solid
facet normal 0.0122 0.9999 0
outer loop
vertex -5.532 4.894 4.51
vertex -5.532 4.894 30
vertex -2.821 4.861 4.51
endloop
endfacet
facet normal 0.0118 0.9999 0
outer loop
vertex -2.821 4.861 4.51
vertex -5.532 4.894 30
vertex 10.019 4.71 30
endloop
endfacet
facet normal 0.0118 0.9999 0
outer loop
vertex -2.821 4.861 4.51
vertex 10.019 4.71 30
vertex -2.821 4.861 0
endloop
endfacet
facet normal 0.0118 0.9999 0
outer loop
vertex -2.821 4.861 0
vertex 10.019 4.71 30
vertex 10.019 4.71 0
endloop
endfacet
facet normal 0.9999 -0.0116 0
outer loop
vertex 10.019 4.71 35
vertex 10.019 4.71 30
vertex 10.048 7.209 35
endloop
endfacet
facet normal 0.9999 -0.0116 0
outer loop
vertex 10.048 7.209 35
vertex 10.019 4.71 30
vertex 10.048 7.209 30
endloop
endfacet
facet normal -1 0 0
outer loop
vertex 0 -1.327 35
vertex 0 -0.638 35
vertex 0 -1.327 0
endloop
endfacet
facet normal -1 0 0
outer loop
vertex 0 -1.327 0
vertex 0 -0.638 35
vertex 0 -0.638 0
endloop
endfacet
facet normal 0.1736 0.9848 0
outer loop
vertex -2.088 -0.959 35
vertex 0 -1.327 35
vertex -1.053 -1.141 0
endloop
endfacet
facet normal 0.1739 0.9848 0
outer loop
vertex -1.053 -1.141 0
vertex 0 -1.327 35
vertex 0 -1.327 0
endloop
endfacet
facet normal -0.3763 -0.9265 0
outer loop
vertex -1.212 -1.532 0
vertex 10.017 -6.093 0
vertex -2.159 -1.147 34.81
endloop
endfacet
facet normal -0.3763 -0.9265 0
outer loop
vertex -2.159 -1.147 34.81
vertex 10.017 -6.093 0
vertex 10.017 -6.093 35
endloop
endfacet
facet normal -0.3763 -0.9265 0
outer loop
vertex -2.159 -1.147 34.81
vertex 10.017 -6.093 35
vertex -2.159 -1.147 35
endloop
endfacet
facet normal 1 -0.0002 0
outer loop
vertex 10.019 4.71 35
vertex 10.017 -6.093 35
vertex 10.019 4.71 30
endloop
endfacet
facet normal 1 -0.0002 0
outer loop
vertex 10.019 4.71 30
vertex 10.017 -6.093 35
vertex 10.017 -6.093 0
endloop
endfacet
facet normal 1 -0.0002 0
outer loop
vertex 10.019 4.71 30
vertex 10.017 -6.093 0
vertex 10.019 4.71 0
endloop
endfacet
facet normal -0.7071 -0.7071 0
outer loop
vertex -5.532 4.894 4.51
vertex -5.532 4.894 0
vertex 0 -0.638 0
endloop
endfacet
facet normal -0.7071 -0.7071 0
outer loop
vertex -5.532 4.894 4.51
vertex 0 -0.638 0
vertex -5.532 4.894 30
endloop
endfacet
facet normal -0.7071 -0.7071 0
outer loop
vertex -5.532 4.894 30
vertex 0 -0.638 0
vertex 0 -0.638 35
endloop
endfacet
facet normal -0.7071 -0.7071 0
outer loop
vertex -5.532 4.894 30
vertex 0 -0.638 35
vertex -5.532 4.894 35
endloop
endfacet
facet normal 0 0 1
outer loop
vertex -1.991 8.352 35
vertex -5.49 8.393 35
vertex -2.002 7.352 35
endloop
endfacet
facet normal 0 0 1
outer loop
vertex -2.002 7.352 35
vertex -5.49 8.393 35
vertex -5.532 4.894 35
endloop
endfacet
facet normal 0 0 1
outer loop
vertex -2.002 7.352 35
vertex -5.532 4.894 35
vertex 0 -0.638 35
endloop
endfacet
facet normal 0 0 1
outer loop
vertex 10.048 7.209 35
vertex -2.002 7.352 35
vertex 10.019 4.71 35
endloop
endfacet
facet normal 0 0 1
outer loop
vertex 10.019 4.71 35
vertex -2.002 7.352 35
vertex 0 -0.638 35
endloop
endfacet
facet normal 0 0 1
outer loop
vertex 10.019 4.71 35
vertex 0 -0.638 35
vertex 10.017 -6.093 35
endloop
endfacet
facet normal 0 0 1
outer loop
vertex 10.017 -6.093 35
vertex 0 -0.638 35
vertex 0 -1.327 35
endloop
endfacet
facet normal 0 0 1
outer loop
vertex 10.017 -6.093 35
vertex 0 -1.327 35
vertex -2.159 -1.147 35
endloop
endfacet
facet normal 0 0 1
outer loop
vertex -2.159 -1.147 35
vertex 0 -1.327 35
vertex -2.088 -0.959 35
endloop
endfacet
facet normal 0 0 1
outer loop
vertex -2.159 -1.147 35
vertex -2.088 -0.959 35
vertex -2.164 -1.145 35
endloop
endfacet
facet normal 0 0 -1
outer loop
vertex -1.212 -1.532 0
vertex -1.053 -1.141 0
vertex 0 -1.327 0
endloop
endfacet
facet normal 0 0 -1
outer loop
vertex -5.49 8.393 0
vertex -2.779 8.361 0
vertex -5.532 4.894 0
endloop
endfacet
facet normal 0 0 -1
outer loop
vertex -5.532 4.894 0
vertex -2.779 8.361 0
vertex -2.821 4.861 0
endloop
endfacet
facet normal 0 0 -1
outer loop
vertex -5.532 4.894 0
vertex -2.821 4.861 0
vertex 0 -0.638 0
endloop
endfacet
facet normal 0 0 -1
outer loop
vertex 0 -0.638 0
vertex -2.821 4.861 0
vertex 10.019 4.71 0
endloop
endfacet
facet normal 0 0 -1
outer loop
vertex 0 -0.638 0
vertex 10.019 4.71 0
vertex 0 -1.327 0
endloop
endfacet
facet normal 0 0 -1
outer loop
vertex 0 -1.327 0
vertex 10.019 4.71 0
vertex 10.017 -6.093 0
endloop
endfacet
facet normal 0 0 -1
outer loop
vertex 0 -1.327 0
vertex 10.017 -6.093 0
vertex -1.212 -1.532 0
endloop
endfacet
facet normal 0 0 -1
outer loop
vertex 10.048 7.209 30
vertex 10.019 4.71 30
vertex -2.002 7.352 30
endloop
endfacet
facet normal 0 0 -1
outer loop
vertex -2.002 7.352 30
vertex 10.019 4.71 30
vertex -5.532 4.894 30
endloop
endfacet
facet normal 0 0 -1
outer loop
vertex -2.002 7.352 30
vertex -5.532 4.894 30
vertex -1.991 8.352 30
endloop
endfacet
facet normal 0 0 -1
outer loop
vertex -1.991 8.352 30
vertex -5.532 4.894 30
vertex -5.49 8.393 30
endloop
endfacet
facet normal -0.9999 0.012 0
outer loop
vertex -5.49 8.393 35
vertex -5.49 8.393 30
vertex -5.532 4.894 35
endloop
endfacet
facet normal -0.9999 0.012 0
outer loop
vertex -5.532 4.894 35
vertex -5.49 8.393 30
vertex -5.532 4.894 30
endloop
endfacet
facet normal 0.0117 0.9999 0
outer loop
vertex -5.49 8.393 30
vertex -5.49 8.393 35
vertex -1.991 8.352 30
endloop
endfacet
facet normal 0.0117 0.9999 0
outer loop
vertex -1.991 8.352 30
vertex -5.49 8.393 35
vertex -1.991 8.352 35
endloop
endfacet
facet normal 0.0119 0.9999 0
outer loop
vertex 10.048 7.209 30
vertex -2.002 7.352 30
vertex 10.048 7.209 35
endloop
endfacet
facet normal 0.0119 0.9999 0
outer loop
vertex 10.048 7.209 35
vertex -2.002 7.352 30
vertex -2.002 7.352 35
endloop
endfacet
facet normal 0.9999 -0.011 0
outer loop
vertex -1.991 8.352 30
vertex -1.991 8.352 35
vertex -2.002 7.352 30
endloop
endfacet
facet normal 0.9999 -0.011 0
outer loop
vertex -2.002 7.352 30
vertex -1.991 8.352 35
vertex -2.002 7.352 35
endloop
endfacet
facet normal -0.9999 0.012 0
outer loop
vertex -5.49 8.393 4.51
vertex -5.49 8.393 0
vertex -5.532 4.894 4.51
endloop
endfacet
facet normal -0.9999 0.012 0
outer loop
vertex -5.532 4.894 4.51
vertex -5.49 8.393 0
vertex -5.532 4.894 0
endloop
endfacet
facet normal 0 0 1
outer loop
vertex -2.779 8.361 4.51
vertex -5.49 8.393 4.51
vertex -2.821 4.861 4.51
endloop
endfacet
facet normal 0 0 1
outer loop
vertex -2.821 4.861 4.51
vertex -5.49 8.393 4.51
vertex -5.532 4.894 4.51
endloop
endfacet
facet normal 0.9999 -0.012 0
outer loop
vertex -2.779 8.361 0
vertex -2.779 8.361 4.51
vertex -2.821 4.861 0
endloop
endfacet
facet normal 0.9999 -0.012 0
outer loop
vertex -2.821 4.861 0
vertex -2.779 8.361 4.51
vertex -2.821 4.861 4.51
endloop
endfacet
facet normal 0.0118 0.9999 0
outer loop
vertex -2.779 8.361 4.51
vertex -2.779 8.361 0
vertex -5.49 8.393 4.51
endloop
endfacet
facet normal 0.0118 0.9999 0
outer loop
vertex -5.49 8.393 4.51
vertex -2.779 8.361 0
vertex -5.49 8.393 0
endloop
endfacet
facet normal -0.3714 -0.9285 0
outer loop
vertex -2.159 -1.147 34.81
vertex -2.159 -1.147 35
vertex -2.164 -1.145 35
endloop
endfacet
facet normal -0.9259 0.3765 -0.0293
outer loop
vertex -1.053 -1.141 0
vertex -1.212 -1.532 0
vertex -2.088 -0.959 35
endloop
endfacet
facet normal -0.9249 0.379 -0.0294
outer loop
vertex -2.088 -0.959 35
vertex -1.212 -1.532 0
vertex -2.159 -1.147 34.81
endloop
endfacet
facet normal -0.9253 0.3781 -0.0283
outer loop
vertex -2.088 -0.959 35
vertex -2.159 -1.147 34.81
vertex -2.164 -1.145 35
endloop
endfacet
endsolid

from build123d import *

# Parameters (mm, degrees)
BOSS_EXTRU_1_DEPTH      = 35
ESQUISSE3_W             = 15.551416147
ESQUISSE3_H             = 5
BOSS_EXTRU_3_DEPTH      = 3.5
ESQUISSE4_W             = 14.990100516
ESQUISSE4_H             = 8.543070591
ENL_V_MAT_EXTRU_4_DEPTH = 11
ESQUISSE5_W             = 2.711143337
ESQUISSE5_H             = 4.509933932
BOSS_EXTRU_4_DEPTH      = 3.5
CONG_2_R                = 0.1
ENL_V_MAT_EXTRU_7_DEPTH = 11


with BuildPart() as part:
    # Esquisse1 → Boss.-Extru.1 (new body)
    with BuildSketch(Plane.XY):
        Polygon((0, -0.638190255), (-5.531744574, 4.893554319), (10.018583778, 4.709618574), (10.016881657, -6.092719993), (-3.032142088, -0.792171418), (0, -1.326819878), align=None)
    extrude(amount=BOSS_EXTRU_1_DEPTH)

    # Esquisse3 → Boss.-Extru.3 (add)
    with BuildSketch(Plane(origin=(0.05710105, 4.827447131, 0), x_dir=(0.9999300516333419, -0.011827588111794733, 0), z_dir=(0.011827588111794733, 0.9999300516333419, 0))):
        with Locations((2.186471492, -32.5)):
            Rectangle(ESQUISSE3_W, ESQUISSE3_H)
    extrude(amount=BOSS_EXTRU_3_DEPTH)

    # Esquisse4 → Enlèv. mat.-Extru.4 (cut)
    with BuildSketch(Plane(origin=(0.21677349, 18.326502828, 0), x_dir=(0.9999300516333419, -0.011827588111794735, 0), z_dir=(0.011827588111794735, 0.9999300516333419, 0))):
        with Locations((5.405813676, -32.865617066)):
            Rectangle(ESQUISSE4_W, ESQUISSE4_H)
    extrude(amount=-ENL_V_MAT_EXTRU_4_DEPTH, mode=Mode.SUBTRACT)

    # Esquisse5 → Boss.-Extru.4 (add)
    with BuildSketch(Plane(origin=(0.05710105, 4.827447131, 0), x_dir=(0.9999300516333419, -0.011827588111794733, 0), z_dir=(0.011827588111794733, 0.9999300516333419, 0))):
        with Locations((-4.233664914, -2.254966966)):
            Rectangle(ESQUISSE5_W, ESQUISSE5_H)
    extrude(amount=BOSS_EXTRU_4_DEPTH)

    # Congé2
    cong_2_edges = [part.edges().sort_by_distance(p)[0] for p in [
        (-3.032142088, -0.792171418, 17.5),
    ]]
    fillet(cong_2_edges, radius=CONG_2_R)

    # Esquisse6 → Enlèv. mat.-Extru.7 (cut)
    with BuildSketch(Plane(origin=(-4.469048391, -11.002015687, 0), x_dir=(-0.9264818598701292, 0.37633942569386236, 0), z_dir=(-0.37633942569386236, -0.9264818598701292, 0))):
        Polygon((1.67530136, 0.492691421), (1.67530136, -38.461342547), (0.532077108, 0.492691421), align=None)
    extrude(amount=-ENL_V_MAT_EXTRU_7_DEPTH, mode=Mode.SUBTRACT)


solid = part.part
